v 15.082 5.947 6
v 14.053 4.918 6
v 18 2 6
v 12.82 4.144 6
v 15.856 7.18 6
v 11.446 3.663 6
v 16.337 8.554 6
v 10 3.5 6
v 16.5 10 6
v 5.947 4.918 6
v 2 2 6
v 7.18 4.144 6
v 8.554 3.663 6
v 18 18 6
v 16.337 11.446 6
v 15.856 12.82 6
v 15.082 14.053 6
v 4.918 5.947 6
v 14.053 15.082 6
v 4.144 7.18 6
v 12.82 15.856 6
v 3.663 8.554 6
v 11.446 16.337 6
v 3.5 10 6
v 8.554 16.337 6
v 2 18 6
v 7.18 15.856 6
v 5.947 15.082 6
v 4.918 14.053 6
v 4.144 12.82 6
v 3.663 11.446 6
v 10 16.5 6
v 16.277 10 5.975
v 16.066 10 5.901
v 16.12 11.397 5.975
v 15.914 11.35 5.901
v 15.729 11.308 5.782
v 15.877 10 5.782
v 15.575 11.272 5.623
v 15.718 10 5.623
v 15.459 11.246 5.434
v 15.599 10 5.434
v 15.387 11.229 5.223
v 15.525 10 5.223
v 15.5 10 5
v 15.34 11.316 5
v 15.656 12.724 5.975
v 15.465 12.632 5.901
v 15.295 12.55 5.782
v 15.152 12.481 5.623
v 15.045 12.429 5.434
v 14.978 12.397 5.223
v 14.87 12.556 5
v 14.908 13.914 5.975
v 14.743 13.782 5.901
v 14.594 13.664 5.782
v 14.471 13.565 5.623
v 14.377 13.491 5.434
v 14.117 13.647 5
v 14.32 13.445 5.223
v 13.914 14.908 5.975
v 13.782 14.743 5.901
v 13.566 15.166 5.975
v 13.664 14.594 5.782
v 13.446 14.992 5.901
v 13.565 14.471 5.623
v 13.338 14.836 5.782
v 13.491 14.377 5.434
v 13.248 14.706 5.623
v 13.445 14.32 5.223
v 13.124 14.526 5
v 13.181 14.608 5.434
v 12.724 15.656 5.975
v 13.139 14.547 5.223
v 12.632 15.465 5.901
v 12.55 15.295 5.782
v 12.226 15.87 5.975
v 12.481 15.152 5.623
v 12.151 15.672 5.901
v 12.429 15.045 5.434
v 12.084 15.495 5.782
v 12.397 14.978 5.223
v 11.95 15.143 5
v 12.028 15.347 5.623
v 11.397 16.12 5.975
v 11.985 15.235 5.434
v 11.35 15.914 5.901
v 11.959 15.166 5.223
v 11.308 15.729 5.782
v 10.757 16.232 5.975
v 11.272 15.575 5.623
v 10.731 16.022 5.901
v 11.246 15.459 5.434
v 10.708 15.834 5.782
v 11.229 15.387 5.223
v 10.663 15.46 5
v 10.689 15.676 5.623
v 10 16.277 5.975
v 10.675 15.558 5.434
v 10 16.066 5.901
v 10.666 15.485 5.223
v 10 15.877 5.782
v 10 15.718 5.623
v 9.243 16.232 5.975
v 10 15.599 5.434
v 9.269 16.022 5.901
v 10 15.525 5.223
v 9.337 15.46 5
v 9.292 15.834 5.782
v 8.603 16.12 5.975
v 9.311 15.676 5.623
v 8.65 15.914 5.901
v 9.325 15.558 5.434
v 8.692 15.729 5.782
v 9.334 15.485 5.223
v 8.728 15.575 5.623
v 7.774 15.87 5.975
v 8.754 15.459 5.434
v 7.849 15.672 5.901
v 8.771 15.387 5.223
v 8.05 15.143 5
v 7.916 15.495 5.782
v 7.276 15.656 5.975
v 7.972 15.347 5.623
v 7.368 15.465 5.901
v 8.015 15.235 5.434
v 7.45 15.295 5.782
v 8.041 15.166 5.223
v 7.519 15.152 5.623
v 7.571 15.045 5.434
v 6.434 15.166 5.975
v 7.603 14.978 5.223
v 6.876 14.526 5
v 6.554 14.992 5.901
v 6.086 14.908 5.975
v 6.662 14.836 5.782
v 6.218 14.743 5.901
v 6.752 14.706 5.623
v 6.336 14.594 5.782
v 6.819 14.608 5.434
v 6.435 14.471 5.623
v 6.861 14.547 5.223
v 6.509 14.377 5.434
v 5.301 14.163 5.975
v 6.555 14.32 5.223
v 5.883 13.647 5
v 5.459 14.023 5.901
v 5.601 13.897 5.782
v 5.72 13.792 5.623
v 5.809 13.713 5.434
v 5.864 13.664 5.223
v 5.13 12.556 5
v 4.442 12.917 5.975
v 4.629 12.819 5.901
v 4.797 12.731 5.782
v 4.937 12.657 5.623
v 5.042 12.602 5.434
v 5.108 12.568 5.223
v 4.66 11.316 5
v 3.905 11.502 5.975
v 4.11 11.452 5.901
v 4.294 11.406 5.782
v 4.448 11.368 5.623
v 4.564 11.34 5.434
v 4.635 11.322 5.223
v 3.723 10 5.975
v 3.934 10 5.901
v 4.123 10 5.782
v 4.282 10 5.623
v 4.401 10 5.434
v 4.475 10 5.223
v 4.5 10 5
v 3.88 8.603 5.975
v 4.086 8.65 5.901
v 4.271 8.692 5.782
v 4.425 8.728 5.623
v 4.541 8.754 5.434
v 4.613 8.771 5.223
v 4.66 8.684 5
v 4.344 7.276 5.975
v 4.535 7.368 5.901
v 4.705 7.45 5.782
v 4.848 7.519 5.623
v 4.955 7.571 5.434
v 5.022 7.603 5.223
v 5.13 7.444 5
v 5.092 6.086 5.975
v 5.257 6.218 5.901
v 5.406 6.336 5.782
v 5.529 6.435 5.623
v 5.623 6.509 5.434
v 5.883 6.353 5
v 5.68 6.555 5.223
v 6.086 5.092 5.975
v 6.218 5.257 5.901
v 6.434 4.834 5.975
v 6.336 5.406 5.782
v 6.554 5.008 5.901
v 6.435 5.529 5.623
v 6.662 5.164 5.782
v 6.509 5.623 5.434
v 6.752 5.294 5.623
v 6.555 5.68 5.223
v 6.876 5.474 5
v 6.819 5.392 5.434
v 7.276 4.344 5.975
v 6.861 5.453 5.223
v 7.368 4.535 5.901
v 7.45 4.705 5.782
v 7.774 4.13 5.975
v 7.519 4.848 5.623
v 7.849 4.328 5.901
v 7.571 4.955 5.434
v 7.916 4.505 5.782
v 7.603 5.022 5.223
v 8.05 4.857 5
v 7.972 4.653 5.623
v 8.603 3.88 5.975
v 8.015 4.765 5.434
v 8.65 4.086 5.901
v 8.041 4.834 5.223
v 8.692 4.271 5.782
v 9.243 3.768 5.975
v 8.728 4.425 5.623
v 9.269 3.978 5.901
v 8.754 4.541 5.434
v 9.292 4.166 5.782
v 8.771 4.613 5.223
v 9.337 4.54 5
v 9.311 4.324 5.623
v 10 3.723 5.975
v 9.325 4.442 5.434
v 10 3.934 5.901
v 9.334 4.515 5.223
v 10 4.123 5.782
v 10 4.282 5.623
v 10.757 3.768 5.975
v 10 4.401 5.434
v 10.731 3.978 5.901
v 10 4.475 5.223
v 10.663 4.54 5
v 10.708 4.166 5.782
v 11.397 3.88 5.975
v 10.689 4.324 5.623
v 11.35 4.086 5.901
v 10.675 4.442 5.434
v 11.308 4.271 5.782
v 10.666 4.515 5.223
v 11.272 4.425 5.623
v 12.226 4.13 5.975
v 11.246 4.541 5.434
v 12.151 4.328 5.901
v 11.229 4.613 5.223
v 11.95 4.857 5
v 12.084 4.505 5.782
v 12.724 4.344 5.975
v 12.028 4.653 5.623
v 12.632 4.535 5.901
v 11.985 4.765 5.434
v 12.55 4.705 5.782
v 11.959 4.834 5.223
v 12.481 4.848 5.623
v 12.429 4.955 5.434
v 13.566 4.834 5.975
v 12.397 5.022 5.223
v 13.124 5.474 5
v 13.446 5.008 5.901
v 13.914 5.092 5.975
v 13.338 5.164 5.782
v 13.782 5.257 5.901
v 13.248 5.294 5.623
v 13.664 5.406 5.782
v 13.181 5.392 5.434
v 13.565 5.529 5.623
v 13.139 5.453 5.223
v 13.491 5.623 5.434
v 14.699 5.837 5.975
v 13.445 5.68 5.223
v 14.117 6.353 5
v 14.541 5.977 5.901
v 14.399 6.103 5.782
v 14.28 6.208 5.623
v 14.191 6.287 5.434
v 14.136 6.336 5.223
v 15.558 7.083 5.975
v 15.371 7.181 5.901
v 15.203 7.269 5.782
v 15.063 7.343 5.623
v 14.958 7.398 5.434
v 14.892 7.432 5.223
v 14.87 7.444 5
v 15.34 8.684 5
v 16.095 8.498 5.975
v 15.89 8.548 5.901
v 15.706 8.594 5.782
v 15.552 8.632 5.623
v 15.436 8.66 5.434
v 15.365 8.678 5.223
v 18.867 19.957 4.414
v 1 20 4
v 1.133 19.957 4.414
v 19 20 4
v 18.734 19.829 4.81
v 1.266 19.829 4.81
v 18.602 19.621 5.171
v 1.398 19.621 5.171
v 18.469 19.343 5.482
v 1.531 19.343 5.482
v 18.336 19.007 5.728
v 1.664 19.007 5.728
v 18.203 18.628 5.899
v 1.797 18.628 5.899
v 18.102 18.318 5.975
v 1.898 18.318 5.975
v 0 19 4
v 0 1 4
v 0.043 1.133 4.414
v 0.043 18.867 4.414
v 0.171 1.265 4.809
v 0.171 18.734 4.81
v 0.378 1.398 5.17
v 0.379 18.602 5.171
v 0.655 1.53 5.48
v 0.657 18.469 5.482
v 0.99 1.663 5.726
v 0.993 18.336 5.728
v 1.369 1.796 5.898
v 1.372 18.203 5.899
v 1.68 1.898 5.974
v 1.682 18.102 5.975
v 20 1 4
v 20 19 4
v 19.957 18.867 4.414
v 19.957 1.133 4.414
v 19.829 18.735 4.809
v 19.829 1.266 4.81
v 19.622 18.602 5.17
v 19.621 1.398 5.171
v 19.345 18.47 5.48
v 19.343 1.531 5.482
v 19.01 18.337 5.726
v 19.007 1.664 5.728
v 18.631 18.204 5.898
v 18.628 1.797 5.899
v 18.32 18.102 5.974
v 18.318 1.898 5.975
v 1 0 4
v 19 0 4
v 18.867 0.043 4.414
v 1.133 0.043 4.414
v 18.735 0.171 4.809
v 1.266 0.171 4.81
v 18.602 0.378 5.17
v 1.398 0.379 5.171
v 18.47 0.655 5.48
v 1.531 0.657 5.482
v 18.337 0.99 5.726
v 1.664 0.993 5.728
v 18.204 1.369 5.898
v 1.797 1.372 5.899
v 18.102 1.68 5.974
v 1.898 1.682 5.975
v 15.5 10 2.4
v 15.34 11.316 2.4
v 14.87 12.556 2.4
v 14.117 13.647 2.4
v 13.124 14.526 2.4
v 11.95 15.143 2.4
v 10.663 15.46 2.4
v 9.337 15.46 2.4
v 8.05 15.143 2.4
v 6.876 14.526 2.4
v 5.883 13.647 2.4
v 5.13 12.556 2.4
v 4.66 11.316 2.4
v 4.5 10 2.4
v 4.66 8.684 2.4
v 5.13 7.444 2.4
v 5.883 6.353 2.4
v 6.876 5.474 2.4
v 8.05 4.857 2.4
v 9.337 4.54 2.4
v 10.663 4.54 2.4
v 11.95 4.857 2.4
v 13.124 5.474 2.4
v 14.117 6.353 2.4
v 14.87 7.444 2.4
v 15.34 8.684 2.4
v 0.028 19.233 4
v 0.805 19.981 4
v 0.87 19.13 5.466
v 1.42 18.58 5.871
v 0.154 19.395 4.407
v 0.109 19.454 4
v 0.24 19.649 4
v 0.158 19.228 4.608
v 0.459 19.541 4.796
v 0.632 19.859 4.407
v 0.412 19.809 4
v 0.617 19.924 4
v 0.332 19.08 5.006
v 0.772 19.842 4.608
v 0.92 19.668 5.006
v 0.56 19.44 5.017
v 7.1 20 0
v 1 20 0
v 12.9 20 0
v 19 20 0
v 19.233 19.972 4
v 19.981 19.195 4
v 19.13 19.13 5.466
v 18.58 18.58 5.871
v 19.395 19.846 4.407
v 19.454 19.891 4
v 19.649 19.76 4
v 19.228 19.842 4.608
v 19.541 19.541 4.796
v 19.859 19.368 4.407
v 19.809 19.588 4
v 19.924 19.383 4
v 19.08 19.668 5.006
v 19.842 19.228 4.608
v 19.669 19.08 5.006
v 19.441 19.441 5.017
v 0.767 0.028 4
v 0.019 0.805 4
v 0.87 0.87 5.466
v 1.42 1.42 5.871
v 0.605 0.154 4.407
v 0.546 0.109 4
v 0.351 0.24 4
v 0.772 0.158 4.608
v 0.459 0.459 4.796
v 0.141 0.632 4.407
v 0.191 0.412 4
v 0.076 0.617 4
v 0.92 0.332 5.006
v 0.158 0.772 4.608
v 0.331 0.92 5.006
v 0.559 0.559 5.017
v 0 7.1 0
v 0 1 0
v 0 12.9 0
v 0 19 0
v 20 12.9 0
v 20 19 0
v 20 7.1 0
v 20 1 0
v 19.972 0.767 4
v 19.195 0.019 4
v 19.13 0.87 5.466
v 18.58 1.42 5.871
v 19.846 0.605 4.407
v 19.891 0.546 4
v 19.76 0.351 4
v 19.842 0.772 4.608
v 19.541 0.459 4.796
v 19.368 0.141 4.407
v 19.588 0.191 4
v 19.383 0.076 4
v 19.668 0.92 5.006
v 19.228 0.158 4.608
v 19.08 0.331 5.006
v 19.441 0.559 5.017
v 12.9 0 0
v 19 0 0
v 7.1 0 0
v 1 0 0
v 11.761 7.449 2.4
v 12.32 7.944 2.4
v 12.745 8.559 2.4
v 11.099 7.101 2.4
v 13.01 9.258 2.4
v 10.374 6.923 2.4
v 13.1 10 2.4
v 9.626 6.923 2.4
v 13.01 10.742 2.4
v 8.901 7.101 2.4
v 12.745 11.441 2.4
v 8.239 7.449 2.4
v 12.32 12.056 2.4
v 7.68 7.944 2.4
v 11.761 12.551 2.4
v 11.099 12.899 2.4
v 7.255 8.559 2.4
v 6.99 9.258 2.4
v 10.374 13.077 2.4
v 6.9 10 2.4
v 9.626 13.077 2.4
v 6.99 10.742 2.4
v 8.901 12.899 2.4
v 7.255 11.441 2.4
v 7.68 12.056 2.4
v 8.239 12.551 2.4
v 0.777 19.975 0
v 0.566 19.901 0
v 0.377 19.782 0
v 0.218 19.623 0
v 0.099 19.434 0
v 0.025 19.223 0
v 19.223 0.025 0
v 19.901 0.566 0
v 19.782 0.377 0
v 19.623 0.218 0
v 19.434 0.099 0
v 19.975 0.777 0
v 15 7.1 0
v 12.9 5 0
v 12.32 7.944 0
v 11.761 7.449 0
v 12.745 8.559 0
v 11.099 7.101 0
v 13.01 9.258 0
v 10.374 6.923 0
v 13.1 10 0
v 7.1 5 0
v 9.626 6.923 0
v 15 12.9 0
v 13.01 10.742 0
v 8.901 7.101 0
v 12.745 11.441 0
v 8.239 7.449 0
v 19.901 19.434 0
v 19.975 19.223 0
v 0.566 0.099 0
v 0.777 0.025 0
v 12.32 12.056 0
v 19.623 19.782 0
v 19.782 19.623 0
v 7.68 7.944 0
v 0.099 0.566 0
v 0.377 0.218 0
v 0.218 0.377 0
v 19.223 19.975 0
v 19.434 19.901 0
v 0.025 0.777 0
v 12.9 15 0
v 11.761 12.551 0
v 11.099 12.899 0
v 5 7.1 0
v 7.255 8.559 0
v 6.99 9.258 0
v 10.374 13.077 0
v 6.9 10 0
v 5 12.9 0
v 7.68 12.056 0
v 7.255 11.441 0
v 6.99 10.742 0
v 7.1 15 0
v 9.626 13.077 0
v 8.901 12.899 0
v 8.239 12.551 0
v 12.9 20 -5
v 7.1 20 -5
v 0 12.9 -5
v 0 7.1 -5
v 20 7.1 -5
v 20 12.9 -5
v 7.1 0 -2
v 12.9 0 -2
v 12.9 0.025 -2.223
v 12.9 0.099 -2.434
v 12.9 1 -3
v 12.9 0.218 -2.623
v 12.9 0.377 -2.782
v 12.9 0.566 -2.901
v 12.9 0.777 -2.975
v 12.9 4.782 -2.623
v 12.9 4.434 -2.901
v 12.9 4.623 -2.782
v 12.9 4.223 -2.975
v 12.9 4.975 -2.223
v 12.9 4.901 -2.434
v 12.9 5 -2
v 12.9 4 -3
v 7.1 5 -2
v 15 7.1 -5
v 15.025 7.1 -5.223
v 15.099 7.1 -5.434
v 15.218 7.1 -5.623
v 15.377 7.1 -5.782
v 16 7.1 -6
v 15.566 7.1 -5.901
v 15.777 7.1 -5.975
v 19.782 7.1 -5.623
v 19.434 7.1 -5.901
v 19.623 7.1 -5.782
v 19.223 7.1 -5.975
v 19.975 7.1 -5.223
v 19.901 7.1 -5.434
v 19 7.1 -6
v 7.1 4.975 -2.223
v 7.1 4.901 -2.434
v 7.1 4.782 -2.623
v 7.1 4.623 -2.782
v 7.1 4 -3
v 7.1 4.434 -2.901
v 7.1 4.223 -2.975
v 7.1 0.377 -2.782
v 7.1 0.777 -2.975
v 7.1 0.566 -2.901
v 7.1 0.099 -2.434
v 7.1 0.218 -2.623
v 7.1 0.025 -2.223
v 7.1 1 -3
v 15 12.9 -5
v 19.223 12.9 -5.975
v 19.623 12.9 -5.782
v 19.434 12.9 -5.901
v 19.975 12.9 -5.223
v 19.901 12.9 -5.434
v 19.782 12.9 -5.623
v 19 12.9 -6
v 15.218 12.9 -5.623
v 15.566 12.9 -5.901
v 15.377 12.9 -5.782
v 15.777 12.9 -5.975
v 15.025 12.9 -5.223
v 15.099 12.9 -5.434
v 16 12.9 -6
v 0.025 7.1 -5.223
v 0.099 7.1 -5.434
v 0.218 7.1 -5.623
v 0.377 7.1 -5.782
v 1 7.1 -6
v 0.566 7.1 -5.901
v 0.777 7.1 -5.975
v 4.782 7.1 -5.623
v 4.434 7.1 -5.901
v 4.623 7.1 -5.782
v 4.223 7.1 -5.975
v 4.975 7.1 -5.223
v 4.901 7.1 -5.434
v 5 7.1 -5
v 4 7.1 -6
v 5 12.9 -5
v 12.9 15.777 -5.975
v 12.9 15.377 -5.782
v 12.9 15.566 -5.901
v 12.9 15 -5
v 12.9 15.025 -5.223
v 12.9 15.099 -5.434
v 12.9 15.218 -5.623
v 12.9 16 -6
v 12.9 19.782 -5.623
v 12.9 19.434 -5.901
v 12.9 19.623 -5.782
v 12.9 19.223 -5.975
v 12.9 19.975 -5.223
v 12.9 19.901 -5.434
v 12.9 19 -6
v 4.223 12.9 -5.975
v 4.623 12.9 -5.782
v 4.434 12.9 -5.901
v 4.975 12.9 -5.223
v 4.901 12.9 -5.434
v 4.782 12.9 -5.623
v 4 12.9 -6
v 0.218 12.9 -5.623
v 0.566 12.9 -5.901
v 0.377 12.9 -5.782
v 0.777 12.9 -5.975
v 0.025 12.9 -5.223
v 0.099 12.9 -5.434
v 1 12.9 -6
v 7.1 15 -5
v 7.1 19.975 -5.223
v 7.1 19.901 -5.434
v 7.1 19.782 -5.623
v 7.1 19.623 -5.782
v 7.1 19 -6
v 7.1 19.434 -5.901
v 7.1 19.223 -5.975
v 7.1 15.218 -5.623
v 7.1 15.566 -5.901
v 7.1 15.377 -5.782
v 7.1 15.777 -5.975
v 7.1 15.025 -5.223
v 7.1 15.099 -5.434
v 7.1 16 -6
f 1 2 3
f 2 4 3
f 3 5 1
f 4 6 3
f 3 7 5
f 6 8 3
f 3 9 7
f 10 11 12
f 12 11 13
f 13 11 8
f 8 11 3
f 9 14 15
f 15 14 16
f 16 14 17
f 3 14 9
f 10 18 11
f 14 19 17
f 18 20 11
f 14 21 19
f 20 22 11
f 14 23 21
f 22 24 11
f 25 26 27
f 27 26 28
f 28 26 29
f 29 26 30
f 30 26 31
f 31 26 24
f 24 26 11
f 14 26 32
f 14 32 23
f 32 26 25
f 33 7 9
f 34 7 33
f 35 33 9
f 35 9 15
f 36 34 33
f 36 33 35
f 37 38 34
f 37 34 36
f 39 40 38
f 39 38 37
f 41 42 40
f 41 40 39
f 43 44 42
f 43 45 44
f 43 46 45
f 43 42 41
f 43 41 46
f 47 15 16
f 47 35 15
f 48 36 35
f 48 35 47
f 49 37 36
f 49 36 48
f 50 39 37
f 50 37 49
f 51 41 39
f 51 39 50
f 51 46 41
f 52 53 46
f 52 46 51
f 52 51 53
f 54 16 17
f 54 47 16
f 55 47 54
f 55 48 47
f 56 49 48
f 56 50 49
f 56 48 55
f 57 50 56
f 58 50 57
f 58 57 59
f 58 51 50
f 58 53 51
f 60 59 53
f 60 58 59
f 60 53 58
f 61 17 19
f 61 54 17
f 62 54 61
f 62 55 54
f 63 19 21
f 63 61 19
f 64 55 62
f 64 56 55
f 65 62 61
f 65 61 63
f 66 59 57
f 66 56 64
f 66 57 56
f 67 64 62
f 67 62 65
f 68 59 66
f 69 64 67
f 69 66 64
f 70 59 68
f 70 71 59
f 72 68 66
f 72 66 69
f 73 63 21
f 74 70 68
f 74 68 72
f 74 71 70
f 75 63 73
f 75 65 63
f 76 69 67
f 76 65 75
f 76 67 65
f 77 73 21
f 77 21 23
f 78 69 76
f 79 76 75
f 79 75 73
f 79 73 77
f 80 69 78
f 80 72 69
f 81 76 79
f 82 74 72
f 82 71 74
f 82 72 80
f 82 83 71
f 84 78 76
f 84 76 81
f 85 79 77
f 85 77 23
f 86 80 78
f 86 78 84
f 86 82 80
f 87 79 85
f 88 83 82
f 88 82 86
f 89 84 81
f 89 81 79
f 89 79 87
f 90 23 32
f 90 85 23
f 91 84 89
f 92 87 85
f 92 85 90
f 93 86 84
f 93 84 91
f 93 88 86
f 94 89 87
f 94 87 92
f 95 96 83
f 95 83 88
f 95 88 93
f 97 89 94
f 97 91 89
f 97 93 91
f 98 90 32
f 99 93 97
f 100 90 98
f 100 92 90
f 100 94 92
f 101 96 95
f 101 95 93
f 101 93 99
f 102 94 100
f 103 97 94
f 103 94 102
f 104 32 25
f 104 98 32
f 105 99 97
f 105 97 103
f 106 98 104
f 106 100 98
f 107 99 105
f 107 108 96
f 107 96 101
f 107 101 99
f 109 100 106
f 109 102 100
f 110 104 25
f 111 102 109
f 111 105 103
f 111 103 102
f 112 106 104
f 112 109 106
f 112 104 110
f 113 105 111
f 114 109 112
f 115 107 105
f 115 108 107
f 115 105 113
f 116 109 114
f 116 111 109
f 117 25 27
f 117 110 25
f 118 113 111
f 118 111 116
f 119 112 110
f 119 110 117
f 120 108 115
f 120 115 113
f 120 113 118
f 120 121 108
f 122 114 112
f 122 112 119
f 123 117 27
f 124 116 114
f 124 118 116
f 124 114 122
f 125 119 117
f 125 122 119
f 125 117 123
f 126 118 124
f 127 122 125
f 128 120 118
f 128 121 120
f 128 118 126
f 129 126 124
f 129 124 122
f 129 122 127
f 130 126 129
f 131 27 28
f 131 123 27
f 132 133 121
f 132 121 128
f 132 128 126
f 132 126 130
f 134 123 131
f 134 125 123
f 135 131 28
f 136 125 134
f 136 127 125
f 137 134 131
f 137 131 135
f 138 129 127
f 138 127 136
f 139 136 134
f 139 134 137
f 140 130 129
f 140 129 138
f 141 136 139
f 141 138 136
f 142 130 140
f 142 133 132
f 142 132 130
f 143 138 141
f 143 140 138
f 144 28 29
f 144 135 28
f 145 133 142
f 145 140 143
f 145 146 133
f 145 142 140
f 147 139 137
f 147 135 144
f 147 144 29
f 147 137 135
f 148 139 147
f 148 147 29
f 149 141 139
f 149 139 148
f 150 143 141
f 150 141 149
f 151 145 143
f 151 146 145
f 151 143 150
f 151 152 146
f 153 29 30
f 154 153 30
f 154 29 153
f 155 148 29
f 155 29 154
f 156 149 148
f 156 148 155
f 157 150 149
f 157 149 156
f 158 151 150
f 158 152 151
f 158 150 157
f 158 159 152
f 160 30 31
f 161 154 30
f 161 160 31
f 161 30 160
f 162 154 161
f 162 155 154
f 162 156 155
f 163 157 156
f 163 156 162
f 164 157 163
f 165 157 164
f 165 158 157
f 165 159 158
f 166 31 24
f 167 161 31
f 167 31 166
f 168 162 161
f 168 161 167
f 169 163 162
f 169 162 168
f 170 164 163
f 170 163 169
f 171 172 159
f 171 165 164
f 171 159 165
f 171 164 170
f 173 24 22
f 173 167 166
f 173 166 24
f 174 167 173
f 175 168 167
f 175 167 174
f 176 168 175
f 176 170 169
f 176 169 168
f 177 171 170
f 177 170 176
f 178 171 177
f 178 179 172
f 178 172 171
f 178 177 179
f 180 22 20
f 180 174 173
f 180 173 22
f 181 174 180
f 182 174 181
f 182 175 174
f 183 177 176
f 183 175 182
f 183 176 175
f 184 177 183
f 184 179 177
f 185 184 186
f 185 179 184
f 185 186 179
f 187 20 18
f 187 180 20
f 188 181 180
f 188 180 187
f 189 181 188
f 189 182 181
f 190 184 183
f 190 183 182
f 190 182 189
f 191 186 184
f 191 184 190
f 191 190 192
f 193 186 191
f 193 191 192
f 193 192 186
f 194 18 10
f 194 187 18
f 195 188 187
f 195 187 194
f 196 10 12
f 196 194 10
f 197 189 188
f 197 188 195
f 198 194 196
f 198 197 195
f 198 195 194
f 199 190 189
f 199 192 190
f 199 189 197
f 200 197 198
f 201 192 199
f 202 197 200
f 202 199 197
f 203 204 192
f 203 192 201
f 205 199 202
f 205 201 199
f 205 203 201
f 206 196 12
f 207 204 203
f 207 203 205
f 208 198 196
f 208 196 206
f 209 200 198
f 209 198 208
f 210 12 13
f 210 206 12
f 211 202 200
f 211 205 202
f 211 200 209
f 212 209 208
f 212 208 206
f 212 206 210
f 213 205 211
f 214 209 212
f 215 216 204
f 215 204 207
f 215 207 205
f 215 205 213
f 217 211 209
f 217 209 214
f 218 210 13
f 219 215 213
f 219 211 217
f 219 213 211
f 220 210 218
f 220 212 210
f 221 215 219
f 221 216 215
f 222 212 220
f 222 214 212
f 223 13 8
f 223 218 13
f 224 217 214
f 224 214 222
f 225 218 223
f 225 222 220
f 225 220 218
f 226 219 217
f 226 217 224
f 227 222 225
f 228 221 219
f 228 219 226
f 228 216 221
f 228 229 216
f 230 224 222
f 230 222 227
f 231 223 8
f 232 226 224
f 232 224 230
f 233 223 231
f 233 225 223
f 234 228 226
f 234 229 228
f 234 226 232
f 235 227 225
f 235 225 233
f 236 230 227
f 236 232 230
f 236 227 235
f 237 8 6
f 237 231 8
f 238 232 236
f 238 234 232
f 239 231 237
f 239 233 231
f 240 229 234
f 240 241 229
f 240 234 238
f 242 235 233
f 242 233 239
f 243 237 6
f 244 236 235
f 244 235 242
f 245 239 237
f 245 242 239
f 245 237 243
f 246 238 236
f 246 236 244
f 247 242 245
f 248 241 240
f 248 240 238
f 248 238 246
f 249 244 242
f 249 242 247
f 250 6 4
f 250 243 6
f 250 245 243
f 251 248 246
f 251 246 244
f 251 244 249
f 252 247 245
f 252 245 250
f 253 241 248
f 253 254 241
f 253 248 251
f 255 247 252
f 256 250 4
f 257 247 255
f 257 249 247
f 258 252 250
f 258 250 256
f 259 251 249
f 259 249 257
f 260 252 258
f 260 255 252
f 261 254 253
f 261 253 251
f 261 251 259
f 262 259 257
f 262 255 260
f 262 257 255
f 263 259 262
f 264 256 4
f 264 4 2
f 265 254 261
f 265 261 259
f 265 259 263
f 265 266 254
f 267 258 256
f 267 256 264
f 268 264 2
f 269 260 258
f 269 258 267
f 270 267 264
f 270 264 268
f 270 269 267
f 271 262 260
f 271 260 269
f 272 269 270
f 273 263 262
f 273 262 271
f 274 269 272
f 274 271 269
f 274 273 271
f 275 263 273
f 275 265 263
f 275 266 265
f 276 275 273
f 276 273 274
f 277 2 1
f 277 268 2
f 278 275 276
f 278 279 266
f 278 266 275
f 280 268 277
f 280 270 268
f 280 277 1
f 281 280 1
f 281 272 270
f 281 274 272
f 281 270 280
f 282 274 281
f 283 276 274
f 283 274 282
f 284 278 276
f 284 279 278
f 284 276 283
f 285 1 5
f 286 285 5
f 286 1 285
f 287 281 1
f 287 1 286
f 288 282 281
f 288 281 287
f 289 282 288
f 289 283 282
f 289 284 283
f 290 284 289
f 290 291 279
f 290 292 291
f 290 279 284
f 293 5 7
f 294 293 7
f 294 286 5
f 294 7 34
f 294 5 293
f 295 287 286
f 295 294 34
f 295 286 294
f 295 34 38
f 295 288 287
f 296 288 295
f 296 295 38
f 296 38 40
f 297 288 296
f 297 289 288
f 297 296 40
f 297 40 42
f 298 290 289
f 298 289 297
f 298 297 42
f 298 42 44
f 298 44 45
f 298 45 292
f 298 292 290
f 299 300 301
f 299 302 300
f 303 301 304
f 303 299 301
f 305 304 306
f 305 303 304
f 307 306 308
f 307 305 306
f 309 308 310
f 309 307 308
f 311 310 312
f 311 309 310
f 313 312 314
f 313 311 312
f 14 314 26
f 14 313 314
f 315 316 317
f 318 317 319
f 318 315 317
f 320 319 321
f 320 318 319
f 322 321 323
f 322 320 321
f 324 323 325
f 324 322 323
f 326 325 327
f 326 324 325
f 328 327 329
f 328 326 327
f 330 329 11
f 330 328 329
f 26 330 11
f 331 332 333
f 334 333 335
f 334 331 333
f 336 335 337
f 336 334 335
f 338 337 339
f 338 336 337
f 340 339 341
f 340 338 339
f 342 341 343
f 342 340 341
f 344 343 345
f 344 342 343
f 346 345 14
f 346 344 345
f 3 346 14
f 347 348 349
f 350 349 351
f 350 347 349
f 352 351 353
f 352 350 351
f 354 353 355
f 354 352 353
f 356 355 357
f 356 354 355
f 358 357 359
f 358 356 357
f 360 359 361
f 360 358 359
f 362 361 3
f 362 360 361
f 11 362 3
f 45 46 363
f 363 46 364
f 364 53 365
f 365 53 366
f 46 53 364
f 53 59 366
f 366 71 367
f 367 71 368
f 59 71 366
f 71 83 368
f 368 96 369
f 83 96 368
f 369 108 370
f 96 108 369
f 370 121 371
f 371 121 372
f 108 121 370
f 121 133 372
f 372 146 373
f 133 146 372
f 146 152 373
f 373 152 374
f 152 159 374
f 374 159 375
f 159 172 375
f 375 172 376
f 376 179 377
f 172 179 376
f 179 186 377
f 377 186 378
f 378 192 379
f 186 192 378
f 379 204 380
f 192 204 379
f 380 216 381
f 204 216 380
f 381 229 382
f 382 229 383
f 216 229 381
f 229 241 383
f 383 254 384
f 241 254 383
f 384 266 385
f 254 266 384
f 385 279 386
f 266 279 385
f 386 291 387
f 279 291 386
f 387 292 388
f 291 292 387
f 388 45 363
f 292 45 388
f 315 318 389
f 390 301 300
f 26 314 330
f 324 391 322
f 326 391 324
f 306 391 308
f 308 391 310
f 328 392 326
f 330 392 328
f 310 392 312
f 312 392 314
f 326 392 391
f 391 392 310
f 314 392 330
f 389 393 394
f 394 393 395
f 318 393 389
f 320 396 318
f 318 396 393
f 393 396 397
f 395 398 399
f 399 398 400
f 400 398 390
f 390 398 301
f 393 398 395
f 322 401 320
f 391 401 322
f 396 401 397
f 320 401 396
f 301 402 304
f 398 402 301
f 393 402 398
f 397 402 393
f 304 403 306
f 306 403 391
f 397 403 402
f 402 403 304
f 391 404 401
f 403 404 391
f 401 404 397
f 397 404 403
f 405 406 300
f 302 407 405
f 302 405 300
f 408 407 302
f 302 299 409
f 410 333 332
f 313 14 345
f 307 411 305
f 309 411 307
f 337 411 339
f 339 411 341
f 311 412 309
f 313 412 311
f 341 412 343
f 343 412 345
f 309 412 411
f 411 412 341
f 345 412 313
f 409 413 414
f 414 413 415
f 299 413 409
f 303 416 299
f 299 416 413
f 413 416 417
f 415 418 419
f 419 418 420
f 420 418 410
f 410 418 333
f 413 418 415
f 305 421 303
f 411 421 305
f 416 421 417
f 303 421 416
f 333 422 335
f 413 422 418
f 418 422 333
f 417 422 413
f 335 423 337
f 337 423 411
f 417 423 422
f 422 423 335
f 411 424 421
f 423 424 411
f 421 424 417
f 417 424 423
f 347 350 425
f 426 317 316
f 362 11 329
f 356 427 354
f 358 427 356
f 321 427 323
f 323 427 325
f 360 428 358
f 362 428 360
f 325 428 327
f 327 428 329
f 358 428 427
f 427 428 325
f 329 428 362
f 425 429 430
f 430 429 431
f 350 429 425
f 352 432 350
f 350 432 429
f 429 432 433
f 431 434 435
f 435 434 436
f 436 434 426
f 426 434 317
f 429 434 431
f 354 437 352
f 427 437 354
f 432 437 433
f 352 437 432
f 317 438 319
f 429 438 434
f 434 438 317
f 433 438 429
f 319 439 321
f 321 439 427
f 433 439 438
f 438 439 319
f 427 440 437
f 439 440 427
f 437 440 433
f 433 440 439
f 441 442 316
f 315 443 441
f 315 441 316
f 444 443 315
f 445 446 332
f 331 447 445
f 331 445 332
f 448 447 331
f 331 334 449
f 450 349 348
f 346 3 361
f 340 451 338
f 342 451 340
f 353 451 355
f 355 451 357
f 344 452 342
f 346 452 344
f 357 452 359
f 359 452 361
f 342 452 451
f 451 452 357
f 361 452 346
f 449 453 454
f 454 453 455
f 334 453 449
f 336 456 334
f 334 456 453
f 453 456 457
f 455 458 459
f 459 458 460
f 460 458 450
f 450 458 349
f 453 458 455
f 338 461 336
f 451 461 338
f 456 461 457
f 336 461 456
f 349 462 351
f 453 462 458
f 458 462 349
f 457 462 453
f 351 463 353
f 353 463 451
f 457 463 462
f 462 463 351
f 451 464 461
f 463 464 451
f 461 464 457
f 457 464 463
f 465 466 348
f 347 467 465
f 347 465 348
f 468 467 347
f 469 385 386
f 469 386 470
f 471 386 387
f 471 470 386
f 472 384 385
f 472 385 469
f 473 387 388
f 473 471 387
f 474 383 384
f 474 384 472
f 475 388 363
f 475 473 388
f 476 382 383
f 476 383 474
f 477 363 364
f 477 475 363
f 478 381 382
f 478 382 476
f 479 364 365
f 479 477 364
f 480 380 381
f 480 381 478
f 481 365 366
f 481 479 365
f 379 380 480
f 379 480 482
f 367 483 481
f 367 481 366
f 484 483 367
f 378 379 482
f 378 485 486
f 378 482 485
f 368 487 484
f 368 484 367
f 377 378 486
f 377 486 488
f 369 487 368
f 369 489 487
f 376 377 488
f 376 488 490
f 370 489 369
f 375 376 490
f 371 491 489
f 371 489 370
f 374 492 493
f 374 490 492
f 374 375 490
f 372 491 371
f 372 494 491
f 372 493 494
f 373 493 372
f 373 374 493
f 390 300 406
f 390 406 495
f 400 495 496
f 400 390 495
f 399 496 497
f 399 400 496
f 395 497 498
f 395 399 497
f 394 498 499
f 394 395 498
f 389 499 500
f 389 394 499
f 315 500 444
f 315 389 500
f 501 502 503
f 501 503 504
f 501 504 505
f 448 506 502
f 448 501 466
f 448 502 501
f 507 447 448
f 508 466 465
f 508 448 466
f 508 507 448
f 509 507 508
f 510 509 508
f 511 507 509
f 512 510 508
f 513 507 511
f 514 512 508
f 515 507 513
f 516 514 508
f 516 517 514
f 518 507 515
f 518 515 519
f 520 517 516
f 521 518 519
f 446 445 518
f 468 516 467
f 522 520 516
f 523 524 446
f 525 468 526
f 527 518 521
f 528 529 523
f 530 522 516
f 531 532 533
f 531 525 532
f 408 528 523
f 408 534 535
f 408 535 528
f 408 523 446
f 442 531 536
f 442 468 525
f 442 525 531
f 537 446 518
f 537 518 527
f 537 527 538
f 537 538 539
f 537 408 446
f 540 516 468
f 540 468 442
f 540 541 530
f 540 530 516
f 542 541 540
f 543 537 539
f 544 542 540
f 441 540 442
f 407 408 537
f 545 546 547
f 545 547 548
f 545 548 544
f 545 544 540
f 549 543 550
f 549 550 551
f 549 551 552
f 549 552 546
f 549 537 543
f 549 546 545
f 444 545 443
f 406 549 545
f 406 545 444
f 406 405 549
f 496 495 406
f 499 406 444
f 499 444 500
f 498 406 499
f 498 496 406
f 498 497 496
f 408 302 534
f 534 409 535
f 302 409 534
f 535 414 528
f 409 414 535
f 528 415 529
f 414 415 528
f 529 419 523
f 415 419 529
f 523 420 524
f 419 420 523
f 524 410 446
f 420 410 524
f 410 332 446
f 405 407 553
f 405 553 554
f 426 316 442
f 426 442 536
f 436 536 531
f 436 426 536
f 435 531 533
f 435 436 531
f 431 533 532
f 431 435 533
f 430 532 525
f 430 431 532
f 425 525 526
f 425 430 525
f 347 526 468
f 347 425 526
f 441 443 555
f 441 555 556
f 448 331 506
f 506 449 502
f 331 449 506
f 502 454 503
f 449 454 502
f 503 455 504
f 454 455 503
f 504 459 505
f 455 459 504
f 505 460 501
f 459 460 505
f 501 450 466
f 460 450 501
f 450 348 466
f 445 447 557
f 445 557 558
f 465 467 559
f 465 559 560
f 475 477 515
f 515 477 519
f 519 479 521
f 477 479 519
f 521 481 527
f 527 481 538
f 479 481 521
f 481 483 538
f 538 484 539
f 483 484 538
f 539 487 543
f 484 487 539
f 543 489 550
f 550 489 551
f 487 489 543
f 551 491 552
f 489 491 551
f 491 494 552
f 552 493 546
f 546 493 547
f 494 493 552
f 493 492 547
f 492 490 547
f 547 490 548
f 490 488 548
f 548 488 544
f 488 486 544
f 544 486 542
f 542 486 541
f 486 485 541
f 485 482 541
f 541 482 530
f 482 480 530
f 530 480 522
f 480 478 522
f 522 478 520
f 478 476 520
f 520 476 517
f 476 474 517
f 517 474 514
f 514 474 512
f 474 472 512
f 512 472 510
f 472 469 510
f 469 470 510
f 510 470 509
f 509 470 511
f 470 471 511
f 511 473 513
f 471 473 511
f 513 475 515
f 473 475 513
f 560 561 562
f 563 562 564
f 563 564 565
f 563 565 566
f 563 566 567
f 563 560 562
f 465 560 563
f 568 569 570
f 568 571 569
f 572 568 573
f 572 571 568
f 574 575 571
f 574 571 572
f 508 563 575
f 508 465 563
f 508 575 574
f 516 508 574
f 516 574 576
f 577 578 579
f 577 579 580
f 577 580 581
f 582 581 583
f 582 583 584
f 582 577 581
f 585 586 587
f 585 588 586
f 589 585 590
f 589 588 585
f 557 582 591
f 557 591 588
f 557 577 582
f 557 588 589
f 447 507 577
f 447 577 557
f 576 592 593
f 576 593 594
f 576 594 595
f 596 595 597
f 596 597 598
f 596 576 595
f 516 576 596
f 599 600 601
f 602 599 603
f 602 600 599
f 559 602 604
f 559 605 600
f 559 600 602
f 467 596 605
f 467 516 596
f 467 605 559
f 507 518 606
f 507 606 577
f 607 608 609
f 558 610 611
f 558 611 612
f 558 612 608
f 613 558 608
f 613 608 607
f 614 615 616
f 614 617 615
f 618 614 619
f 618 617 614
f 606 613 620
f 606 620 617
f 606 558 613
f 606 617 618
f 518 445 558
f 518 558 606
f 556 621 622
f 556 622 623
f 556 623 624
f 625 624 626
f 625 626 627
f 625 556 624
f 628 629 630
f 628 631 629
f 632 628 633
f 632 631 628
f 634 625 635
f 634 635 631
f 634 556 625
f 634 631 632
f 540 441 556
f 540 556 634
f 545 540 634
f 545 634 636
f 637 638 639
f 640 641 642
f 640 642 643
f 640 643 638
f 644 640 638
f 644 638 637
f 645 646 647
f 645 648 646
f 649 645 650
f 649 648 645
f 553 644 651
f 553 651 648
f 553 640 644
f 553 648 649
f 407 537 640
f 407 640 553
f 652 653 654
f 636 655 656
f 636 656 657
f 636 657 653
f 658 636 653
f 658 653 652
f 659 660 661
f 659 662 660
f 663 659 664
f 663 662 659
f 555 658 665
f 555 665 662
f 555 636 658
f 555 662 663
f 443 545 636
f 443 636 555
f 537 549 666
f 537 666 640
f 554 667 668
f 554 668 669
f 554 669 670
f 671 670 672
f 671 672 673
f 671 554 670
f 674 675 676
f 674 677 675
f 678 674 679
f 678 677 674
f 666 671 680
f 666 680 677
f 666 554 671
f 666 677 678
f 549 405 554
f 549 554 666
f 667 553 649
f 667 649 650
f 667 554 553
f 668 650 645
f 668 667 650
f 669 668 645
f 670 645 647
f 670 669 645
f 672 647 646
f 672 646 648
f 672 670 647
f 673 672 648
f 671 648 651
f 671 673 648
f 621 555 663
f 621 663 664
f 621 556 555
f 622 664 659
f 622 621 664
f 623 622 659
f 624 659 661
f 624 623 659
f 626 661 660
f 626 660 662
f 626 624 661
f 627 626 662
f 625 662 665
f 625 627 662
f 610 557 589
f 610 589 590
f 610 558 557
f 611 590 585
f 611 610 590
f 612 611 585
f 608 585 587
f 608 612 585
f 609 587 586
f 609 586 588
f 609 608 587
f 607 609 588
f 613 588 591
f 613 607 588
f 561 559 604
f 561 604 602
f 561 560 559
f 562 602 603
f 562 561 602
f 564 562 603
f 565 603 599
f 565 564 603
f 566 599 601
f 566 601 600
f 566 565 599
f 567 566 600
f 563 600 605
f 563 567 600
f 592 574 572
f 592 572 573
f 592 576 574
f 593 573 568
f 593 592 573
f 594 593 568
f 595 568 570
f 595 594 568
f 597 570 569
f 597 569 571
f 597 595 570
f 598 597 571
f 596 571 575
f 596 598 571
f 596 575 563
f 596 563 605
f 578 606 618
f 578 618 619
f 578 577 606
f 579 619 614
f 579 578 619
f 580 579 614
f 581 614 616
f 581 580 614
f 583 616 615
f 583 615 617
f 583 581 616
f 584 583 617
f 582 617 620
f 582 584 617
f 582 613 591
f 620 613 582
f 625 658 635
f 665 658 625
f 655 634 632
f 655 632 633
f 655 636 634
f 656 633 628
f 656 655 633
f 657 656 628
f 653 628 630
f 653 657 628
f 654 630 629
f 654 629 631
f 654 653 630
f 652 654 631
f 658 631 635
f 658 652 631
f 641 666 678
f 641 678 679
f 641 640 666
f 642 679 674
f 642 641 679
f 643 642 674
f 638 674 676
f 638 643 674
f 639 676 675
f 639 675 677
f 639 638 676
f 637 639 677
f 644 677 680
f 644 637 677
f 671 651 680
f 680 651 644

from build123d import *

# Parameters (mm, degrees)
SKETCH_W        = 20
SKETCH_H        = 20
PAD_DEPTH       = 6
SKETCH001_R     = 5.5
POCKET_DEPTH    = 3.6
SKETCH002_R     = 3.1
POCKET001_DEPTH = 5
SKETCH003_W     = 5.8
SKETCH003_H     = 5
PAD001_DEPTH    = 6
SKETCH004_W     = 5
SKETCH004_H     = 5.8
PAD002_DEPTH    = 6
SKETCH005_W     = 5.8
SKETCH005_H     = 5
PAD003_DEPTH    = 6
SKETCH006_W     = 5
SKETCH006_H     = 5.8
PAD004_DEPTH    = 6
SKETCH007_W     = 7.342915
SKETCH007_H     = 6.002037
POCKET002_DEPTH = 3
FILLET_R        = 1
FILLET001_R     = 1
FILLET002_R     = 2
FILLET003_R     = 1


with BuildPart() as part:
    # Sketch → Pad (new body)
    with BuildSketch(Plane.XY):
        with Locations((10, 10)):
            Rectangle(SKETCH_W, SKETCH_H)
    extrude(amount=PAD_DEPTH)

    # Sketch001 (on Face6 of Pad) → Pocket (cut)
    with BuildSketch(Plane.XY.offset(6)):
        with Locations((10, 10)):
            Circle(SKETCH001_R)
    extrude(amount=-POCKET_DEPTH, mode=Mode.SUBTRACT)

    # Sketch002 (on Face8 of Pocket) → Pocket001 (cut)
    with BuildSketch(Plane.XY.offset(2.4)):
        with Locations((10, 10)):
            Circle(SKETCH002_R)
    extrude(amount=-POCKET001_DEPTH, mode=Mode.SUBTRACT)

    # Sketch003 (on Face4 of Pocket001) → Pad001 (join)
    with BuildSketch(Plane(origin=(0, 0, 0), x_dir=(1, 0, 0), z_dir=(0, 0, -1))):
        with Locations((10, -2.5)):
            Rectangle(SKETCH003_W, SKETCH003_H)
    extrude(amount=PAD001_DEPTH)

    # Sketch004 (on Face4 of Pad001) → Pad002 (join)
    with BuildSketch(Plane(origin=(0, 0, 0), x_dir=(1, 0, 0), z_dir=(0, 0, -1))):
        with Locations((17.5, -10)):
            Rectangle(SKETCH004_W, SKETCH004_H)
    extrude(amount=PAD002_DEPTH)

    # Sketch005 (on Face4 of Pad002) → Pad003 (join)
    with BuildSketch(Plane(origin=(0, 0, 0), x_dir=(1, 0, 0), z_dir=(0, 0, -1))):
        with Locations((10, -17.5)):
            Rectangle(SKETCH005_W, SKETCH005_H)
    extrude(amount=PAD003_DEPTH)

    # Sketch006 (on Face4 of Pad003) → Pad004 (join)
    with BuildSketch(Plane(origin=(0, 0, 0), x_dir=(1, 0, 0), z_dir=(0, 0, -1))):
        with Locations((2.5, -10)):
            Rectangle(SKETCH006_W, SKETCH006_H)
    extrude(amount=PAD004_DEPTH)

    # Sketch007 → Pocket002 (cut)
    with BuildSketch(Plane(origin=(0, 0, -6), x_dir=(1, 0, 0), z_dir=(0, 0, -1))):
        with Locations((10.087635, -2.302989)):
            Rectangle(SKETCH007_W, SKETCH007_H)
    extrude(amount=-POCKET002_DEPTH, mode=Mode.SUBTRACT)

    # Fillet
    fillet_edges = [part.edges().sort_by_distance(p)[0] for p in [
        (10, 0, -3),
        (10, 5, -3),
        (5, 10, -6),
        (0, 10, -6),
        (10, 15, -6),
        (10, 20, -6),
        (15, 10, -6),
        (20, 10, -6),
    ]]
    fillet(fillet_edges, radius=FILLET_R)

    # Fillet001
    fillet001_edges = [part.edges().sort_by_distance(p)[0] for p in [
        (0, 20, 3),
        (20, 20, 3),
        (20, 0, 3),
        (0, 0, 3),
    ]]
    fillet(fillet001_edges, radius=FILLET001_R)

    # Fillet002
    fillet002_edges = [part.edges().sort_by_distance(p)[0] for p in [
        (10, 20, 6),
        (19.707107, 19.707107, 6),
        (20, 10, 6),
        (19.707107, 0.292893, 6),
        (10, 0, 6),
        (0.292893, 0.292893, 6),
        (0, 10, 6),
        (0.292893, 19.707107, 6),
    ]]
    fillet(fillet002_edges, radius=FILLET002_R)

    # Fillet003
    fillet003_edges = [part.edges().sort_by_distance(p)[0] for p in [
        (4.5, 10, 6),
    ]]
    fillet(fillet003_edges, radius=FILLET003_R)


solid = part.part
